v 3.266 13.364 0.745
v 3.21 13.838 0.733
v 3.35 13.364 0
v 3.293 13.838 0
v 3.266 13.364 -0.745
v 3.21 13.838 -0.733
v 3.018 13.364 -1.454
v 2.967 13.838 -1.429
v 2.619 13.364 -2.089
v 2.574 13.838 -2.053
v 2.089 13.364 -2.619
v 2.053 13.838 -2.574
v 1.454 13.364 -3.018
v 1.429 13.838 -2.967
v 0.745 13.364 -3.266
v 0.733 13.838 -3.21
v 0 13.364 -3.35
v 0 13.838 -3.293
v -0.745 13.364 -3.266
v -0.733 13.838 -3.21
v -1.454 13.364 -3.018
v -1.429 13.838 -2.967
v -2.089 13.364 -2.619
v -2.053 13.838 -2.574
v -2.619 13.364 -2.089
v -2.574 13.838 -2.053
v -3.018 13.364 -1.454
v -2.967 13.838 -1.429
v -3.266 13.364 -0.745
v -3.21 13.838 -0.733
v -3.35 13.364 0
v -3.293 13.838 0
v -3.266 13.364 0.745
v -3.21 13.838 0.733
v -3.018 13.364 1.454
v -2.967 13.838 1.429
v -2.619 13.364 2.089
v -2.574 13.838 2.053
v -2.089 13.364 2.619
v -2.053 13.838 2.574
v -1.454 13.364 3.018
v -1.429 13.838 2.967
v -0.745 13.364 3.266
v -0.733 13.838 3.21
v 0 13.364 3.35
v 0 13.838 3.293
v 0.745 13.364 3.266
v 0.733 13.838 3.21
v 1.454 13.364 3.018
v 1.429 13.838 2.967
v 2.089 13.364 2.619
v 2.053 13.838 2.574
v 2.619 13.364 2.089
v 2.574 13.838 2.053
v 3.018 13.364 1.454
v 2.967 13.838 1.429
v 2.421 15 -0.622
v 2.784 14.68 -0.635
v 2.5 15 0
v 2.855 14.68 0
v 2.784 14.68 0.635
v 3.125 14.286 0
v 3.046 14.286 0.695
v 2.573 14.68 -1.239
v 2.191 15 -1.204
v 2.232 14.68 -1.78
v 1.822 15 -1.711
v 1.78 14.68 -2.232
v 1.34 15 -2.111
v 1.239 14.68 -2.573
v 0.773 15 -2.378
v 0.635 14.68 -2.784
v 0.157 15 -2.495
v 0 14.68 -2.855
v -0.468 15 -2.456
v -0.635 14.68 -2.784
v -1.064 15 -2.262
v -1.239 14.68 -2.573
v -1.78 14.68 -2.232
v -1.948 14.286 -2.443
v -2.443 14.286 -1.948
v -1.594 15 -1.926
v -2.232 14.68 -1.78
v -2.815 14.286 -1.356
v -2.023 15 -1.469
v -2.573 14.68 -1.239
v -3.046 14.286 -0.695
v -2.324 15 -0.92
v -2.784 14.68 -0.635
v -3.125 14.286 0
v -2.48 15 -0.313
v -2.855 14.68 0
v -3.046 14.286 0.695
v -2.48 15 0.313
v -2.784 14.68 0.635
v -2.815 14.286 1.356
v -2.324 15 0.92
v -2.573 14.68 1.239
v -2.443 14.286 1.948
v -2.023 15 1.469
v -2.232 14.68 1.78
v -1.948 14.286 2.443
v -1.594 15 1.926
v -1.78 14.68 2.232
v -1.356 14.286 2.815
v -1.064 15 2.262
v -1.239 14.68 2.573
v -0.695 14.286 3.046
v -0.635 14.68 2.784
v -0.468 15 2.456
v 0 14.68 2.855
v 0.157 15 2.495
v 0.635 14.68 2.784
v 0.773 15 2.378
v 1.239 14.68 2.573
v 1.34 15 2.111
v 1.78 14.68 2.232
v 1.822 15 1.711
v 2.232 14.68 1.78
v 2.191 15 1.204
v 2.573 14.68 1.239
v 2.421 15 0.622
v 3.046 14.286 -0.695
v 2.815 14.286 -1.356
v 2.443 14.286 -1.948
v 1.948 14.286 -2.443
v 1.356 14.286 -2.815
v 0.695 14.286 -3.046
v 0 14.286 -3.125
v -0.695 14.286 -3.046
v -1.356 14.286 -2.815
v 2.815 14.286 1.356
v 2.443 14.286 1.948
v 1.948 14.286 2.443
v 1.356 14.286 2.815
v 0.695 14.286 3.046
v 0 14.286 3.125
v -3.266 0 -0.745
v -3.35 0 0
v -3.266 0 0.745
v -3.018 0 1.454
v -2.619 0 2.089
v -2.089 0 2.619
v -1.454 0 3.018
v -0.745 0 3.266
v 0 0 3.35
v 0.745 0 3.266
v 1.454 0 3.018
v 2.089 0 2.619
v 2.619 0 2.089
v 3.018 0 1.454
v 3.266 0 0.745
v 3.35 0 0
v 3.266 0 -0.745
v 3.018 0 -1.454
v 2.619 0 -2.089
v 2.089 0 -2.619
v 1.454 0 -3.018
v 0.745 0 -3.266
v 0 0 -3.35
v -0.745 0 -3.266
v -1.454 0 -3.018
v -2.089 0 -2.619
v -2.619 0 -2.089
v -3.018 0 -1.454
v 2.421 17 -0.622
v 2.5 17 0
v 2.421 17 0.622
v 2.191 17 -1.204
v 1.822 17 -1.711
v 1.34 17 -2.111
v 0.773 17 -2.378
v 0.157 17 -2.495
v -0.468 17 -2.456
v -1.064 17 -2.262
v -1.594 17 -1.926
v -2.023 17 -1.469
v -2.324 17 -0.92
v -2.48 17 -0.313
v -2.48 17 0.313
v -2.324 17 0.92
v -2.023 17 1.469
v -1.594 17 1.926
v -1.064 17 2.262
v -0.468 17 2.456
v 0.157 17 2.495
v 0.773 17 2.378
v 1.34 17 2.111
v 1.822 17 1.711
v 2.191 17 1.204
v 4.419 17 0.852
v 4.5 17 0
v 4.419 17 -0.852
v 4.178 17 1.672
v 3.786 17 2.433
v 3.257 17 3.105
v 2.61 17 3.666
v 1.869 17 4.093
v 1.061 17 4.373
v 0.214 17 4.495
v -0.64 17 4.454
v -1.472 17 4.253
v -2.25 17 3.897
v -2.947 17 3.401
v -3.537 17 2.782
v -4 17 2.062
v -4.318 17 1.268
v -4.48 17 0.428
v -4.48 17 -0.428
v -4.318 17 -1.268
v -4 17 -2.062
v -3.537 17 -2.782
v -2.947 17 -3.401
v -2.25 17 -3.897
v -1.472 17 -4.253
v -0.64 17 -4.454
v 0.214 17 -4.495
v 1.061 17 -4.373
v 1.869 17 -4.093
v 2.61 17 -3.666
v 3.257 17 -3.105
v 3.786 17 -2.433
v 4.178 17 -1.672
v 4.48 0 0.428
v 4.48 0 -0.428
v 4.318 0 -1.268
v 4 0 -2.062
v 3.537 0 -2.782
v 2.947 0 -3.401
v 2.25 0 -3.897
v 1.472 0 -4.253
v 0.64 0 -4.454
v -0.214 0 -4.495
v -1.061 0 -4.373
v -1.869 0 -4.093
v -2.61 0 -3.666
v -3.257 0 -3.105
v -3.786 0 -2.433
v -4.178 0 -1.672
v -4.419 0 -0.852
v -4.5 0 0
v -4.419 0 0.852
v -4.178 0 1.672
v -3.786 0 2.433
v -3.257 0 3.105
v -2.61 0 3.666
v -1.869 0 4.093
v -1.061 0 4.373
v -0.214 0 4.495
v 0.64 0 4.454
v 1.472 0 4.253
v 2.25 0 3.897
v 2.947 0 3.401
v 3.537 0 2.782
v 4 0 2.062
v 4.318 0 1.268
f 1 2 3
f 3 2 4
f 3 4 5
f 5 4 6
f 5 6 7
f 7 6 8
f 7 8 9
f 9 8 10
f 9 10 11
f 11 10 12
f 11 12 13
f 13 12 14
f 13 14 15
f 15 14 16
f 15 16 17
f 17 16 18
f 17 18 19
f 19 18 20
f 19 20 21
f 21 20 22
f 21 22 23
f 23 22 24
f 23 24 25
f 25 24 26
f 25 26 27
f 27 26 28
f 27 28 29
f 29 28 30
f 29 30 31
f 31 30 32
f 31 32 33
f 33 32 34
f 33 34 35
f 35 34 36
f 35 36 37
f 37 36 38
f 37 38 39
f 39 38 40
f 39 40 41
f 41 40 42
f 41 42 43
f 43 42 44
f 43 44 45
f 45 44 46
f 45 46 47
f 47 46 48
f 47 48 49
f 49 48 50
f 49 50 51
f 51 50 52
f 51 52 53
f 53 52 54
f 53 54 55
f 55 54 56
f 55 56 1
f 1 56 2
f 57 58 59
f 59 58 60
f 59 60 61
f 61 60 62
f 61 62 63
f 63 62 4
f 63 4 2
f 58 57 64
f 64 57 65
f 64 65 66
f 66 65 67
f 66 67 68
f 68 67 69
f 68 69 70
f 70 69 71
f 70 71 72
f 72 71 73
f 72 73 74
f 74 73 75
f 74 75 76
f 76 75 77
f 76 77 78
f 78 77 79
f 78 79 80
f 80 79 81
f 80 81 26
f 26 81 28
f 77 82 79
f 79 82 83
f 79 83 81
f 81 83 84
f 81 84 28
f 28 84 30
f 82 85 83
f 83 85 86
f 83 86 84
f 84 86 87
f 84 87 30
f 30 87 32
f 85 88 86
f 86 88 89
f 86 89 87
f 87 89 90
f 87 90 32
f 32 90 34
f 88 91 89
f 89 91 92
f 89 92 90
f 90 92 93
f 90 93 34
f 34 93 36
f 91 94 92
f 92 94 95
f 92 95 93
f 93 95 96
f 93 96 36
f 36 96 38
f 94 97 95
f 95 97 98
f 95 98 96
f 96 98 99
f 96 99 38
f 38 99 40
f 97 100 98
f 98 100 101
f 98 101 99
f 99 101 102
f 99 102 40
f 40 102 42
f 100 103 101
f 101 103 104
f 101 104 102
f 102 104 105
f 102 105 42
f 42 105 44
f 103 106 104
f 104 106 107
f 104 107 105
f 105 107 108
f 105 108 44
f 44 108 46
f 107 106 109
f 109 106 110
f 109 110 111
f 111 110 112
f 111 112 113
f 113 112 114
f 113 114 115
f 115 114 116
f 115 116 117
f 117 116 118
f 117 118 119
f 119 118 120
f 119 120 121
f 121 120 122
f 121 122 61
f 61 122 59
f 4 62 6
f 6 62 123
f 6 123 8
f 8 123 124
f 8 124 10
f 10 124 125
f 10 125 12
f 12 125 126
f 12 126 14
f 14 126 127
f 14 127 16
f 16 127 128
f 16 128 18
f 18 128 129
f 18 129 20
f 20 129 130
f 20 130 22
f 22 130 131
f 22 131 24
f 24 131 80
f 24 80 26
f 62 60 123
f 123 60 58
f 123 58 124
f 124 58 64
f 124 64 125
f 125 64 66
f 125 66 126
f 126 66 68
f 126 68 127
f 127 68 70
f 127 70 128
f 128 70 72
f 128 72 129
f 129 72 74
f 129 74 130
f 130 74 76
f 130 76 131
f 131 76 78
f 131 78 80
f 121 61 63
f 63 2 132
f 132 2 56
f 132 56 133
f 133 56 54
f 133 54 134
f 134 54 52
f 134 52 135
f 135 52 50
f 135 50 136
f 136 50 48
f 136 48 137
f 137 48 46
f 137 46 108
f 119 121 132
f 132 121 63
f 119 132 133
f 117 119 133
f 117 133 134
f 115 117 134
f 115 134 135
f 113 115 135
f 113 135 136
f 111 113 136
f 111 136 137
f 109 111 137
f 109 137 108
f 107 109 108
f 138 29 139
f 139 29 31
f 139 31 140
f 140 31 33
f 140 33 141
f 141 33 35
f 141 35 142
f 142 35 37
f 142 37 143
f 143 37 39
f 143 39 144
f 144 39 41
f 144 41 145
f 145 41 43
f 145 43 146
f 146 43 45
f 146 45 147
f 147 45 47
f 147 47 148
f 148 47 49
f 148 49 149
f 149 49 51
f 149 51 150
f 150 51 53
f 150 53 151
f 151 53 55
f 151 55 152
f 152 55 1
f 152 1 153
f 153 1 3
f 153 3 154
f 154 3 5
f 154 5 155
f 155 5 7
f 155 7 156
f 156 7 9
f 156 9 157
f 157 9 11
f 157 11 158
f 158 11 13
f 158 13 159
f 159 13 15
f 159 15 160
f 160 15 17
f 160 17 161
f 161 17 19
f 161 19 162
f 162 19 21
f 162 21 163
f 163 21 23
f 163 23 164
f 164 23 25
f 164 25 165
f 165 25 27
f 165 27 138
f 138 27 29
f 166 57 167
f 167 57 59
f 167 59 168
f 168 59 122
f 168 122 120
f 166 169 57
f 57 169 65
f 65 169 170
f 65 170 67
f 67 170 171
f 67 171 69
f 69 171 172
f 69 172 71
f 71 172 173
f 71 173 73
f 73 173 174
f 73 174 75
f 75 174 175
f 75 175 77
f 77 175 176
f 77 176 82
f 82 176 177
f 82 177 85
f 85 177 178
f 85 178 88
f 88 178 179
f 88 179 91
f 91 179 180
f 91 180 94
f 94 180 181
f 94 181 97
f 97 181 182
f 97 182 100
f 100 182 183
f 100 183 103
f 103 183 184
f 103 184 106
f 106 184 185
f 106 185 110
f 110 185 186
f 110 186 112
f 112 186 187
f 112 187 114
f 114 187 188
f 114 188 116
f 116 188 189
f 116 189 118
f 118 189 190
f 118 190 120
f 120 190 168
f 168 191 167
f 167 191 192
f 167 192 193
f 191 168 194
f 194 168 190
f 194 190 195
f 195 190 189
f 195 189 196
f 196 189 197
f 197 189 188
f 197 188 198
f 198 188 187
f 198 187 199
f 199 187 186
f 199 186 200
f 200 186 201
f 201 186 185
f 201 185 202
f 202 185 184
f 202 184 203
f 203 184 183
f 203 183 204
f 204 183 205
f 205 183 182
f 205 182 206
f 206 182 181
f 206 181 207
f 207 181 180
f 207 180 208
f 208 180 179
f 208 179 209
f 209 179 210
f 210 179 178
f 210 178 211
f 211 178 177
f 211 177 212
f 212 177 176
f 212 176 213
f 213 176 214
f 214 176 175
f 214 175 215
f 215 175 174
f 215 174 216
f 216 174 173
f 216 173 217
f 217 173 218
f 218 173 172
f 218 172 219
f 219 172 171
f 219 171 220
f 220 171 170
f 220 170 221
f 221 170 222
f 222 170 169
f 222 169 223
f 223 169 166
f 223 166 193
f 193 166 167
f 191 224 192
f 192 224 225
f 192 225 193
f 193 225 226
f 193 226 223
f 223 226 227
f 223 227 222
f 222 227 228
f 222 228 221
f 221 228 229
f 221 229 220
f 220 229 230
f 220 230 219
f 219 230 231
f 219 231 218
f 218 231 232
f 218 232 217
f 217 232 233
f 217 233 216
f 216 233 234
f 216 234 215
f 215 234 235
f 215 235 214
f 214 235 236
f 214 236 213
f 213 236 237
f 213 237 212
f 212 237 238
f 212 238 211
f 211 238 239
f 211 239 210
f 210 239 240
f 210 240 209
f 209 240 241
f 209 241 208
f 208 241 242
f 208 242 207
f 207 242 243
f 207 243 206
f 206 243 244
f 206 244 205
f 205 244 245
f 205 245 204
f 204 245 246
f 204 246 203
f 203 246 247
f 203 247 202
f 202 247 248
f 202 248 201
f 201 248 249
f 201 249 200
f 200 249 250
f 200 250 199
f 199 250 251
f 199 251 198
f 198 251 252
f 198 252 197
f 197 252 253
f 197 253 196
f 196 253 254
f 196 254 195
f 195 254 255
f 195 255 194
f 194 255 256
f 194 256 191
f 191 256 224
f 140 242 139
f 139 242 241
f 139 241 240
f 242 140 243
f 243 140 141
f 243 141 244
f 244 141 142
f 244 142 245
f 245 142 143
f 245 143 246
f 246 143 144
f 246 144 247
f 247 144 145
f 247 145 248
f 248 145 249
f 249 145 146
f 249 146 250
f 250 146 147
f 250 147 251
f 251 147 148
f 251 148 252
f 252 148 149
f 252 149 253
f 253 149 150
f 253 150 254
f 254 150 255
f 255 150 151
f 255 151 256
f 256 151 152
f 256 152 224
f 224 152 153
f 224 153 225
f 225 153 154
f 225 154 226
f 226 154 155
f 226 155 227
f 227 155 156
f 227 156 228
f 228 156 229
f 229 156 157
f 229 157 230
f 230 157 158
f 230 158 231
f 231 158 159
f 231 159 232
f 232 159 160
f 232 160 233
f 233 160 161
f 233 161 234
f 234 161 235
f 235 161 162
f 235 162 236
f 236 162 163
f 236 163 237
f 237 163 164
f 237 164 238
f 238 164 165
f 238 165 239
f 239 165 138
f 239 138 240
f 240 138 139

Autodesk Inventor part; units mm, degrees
ref_plane "YZ Plane" through (0, 0, 0) normal (1, 0, 0) x (0, 1, 0)
ref_plane "XZ Plane" through (0, 0, 0) normal (0, 1, 0) x (-1, 0, 0)
ref_plane "XY Plane" through (0, 0, 0) normal (0, 0, 1) x (1, 0, 0)
sketch "Sketch1" plane through (0, 0, 0) normal (0, 1, 0) x (-1, 0, 0)
  circle A0 centre (0, 0) radius 3.35
  circle A1 centre (0, 0) radius 4.5
  dimension "d0" = 6.7
  dimension "d1" = 9
extrude "Extrusion1" add sketch "Sketch1" along normal blind 15
sketch "Sketch2" plane through (0, 15, 0) normal (0, 1, 0) x (1, 0, 0)
  circle A0 centre (0, 0) radius 2.5
  circle A1 centre (0, 0) radius 3.35 projected
  circle A2 centre (0, 0) radius 4.5 projected
  dimension "d4" = 5
extrude "Extrusion2" add sketch "Sketch2" along normal blind 2 contours A1 | A2
fillet "Fillet1" radius 2 1 edges at (3.35, 15, 0)
equation "\"BendRadius\" = Thickness"
equation "\"BendReliefWidth\" = Thickness"
equation "\"BendReliefDepth\" = 0.5 * Thickness"
equation "\"CornerReliefSize\" = 4 * Thickness"
equation "\"MinimumRemnant\" = 2 * Thickness"
equation "\"TransitionRadius\" = BendRadius"
equation "\"JacobiRadiusSize\" = BendRadius"
equation "\"GapSize\" = Thickness"
equation "\"Thickness\" = 0.5"
properties part number "laser_tube_extender_single"
